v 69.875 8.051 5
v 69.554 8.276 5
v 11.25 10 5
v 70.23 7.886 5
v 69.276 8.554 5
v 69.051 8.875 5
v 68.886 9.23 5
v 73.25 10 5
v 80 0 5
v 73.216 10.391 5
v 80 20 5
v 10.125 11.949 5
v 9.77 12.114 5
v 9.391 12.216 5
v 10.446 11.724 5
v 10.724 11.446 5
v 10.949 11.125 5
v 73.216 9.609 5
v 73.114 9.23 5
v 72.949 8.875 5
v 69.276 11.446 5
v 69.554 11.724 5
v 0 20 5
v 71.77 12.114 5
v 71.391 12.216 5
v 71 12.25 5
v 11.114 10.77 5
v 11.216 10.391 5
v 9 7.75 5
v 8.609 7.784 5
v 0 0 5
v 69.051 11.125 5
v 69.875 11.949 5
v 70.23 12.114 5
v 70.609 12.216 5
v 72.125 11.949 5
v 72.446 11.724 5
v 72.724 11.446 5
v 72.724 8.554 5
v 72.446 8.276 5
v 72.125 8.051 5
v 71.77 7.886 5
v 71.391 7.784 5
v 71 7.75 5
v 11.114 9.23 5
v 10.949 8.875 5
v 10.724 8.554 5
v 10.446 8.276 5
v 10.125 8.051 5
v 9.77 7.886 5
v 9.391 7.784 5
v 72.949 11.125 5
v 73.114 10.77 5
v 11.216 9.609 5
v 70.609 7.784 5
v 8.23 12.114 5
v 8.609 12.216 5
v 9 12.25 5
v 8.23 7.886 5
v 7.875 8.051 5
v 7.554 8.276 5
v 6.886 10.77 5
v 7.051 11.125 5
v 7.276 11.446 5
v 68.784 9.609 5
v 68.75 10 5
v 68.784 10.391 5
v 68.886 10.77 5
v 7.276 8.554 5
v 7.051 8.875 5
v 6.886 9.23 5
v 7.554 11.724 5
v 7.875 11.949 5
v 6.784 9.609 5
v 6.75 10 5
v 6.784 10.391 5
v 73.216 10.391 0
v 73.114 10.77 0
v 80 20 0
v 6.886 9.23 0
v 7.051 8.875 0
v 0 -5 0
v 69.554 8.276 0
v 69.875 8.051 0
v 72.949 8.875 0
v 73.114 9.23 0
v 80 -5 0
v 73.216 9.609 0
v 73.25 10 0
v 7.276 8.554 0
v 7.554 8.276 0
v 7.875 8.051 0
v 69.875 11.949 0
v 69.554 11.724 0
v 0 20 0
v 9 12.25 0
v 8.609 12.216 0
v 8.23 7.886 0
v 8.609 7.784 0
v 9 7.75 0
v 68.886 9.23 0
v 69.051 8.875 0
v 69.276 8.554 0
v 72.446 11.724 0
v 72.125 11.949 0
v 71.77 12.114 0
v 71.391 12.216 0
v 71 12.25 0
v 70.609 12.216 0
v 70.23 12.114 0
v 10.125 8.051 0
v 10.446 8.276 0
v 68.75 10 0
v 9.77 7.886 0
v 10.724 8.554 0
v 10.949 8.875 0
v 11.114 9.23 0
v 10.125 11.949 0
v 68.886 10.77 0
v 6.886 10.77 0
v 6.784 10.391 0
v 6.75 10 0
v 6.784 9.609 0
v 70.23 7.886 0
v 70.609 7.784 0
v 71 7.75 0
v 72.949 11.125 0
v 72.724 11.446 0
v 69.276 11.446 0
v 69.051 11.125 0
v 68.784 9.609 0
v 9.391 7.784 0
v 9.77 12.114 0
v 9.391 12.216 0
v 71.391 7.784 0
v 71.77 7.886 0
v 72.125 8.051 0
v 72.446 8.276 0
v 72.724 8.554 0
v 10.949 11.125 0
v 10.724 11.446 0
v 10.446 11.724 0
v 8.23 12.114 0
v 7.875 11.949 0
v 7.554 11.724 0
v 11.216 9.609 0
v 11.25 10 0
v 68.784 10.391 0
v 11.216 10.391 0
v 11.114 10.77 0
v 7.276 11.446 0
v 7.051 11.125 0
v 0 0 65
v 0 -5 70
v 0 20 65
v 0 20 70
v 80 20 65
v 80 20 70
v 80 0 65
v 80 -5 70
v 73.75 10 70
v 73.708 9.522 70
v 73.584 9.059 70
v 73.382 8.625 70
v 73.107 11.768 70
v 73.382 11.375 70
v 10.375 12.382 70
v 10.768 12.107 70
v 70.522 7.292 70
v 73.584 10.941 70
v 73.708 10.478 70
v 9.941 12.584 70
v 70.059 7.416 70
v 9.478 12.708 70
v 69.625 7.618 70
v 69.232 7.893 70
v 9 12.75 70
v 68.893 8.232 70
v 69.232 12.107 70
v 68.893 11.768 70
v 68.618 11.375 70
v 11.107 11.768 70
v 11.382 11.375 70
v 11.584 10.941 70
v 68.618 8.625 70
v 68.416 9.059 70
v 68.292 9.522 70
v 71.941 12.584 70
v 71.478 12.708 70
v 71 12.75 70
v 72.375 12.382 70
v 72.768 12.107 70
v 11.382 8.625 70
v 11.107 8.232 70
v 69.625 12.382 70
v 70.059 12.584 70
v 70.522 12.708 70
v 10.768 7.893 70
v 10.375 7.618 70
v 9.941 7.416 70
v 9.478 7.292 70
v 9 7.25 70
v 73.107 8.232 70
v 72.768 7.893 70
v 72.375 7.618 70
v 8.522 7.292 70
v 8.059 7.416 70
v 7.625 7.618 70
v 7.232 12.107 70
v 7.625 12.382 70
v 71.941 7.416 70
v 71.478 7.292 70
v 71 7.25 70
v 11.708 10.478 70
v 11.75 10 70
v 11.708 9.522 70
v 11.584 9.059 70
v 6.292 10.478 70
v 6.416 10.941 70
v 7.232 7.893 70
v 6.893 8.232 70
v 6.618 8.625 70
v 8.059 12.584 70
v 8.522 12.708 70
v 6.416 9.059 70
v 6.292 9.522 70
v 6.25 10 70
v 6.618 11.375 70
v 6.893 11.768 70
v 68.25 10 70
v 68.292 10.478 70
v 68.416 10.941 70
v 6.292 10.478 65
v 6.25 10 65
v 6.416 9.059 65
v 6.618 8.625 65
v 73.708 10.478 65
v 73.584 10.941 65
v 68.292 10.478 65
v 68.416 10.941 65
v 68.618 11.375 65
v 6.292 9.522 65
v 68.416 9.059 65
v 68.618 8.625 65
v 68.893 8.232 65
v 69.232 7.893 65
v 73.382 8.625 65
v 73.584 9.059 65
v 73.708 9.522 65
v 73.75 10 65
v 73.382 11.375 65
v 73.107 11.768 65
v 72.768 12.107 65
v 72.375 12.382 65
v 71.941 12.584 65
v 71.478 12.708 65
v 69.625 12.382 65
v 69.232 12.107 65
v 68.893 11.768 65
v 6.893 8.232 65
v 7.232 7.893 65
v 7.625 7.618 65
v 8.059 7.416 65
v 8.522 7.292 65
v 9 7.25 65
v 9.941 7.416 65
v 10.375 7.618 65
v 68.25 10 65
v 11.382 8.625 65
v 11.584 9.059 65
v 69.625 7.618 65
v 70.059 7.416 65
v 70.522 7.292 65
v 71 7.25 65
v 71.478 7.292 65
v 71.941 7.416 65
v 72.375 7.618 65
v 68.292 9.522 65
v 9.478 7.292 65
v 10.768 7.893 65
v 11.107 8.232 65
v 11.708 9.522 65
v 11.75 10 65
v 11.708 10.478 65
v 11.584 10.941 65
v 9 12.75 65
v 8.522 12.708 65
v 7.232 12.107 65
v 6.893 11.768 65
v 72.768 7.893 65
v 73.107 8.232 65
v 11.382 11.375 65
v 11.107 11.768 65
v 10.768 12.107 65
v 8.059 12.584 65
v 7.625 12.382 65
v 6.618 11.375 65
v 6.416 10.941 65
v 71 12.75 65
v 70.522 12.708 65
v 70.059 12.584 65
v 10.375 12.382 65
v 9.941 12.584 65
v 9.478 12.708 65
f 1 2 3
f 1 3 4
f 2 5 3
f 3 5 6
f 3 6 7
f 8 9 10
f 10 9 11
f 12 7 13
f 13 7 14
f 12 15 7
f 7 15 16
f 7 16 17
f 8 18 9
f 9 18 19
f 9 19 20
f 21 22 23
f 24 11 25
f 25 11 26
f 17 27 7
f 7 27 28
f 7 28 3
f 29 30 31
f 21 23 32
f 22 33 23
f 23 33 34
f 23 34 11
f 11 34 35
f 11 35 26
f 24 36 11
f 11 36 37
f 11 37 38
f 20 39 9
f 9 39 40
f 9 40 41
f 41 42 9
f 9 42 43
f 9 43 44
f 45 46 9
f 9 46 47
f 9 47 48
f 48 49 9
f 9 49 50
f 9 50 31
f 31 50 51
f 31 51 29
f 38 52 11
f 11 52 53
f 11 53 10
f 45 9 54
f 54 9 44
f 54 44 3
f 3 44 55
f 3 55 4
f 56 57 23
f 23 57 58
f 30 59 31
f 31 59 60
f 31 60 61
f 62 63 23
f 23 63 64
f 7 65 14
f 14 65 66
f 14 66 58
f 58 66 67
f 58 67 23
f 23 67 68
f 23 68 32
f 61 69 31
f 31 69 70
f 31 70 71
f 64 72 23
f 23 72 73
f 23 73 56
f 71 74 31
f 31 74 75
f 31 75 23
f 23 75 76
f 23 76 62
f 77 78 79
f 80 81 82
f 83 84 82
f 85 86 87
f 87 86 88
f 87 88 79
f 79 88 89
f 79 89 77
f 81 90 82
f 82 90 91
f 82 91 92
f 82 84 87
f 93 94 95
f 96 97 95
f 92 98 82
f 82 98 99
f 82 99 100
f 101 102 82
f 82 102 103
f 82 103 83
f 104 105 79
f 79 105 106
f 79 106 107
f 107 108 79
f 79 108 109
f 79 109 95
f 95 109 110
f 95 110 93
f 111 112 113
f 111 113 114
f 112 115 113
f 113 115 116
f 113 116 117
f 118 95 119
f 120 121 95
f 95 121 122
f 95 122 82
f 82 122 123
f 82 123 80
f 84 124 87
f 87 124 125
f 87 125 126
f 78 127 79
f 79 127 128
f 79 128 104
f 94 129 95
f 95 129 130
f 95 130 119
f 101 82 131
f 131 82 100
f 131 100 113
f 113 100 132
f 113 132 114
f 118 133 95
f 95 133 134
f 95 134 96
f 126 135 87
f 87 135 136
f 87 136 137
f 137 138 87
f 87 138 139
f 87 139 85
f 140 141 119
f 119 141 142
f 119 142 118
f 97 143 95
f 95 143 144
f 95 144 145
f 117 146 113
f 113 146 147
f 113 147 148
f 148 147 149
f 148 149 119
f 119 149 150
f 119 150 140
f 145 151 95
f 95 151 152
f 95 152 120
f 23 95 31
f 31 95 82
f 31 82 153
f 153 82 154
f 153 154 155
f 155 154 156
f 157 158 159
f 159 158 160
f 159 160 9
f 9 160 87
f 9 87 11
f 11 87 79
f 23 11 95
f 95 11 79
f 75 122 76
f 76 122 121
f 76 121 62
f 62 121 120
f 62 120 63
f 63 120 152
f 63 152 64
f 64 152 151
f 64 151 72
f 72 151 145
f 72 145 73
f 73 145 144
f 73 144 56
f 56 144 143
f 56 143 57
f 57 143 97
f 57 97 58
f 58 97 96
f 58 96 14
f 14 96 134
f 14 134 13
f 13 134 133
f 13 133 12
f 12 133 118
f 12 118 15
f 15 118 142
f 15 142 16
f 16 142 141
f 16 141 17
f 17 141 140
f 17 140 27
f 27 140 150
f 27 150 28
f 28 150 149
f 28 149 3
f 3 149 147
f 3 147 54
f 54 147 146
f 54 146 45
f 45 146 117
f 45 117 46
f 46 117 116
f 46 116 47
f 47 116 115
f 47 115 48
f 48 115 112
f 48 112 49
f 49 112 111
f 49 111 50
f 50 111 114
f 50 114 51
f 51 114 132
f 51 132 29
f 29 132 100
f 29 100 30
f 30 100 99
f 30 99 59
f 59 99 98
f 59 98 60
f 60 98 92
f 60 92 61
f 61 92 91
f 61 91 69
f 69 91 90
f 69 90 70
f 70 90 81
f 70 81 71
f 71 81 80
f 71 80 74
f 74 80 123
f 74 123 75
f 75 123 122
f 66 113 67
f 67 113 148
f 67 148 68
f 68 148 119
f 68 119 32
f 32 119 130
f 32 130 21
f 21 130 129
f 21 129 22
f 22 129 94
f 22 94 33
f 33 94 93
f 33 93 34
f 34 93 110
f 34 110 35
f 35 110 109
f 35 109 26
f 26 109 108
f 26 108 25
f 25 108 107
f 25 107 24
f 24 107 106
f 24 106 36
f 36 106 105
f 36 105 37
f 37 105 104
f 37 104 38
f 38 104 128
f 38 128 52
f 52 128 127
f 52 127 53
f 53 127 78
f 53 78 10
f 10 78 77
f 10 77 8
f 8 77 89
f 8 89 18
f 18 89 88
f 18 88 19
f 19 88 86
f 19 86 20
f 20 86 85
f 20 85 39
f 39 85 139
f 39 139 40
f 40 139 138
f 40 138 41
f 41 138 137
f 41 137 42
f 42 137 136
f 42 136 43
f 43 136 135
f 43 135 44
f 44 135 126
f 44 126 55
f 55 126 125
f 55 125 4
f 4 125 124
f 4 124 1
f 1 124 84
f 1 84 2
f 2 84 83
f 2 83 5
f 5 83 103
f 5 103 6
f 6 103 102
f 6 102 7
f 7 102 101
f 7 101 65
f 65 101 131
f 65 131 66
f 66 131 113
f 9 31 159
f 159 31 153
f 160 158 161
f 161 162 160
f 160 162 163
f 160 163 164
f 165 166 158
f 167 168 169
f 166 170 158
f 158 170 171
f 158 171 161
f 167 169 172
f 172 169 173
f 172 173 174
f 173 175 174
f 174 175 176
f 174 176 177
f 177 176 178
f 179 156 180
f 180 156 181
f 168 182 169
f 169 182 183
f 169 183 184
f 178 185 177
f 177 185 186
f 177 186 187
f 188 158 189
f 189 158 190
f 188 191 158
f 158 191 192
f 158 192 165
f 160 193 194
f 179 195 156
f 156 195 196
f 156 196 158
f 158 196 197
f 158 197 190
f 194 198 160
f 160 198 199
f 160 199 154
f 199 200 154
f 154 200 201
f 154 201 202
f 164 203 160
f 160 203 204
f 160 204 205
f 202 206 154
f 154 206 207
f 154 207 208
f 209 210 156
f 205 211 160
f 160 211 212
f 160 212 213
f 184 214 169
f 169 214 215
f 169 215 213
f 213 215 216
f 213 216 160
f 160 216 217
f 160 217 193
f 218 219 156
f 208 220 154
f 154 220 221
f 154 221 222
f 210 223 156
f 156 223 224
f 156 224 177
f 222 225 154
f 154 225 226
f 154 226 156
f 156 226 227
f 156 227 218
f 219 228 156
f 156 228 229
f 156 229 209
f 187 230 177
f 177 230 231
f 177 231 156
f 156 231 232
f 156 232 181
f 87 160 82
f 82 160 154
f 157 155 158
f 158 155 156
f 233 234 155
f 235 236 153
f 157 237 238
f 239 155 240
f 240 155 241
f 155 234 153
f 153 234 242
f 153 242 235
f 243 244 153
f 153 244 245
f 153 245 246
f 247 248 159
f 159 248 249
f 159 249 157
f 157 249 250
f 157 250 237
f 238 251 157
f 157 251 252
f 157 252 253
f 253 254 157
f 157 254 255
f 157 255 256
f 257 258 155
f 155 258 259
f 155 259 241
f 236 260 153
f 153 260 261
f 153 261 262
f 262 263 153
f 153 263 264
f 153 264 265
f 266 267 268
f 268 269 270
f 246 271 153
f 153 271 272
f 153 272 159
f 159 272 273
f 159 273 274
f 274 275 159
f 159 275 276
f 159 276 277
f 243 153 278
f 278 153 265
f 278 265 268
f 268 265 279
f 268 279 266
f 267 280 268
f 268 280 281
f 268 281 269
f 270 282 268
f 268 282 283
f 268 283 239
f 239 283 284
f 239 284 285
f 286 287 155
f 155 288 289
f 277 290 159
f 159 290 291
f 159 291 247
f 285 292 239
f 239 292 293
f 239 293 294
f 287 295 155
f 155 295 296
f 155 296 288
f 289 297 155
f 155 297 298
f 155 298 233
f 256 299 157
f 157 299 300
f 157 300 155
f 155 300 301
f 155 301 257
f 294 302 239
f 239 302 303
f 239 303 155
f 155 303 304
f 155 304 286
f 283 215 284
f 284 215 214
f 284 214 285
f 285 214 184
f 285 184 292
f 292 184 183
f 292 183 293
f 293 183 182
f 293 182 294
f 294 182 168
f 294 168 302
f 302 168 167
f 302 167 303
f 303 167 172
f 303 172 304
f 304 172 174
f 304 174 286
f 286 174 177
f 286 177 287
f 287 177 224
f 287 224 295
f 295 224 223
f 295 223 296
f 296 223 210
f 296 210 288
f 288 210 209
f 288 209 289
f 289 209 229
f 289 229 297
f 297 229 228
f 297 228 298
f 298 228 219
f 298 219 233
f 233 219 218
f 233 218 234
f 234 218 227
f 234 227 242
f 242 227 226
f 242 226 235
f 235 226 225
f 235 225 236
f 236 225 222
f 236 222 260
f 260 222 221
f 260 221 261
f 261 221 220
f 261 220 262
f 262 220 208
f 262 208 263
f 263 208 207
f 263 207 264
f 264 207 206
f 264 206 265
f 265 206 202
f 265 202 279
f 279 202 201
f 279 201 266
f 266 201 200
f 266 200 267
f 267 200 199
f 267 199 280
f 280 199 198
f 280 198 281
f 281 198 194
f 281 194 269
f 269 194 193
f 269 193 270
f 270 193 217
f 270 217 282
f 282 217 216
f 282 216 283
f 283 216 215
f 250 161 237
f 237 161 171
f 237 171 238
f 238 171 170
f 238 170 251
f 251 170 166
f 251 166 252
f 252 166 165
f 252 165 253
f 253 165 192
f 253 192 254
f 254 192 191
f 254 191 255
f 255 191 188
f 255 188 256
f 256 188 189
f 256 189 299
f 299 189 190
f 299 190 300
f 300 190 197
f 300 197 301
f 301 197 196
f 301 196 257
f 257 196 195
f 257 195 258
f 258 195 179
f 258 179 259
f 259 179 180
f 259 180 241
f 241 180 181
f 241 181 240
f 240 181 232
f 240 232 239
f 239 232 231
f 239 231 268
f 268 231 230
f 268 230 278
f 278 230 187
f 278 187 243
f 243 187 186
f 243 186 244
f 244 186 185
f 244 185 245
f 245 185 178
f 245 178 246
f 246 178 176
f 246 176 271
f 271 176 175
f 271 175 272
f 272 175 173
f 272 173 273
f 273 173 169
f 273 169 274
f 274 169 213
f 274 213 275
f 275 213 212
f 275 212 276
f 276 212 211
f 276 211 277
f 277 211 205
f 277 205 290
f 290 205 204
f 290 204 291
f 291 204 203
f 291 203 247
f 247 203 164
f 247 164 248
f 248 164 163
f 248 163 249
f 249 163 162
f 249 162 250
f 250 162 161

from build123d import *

# Parameters (mm, degrees)
SKETCH1_W           = 80
SKETCH1_H           = 20
SKETCH1_R           = 2.25
BOSS_EXTRUDE1_DEPTH = 5
SKETCH2_W           = 80
SKETCH2_H           = 70
BOSS_EXTRUDE2_DEPTH = 5
SKETCH3_W           = 80
SKETCH3_H           = 20
SKETCH3_R           = 2.75
BOSS_EXTRUDE3_DEPTH = 5


with BuildPart() as part:
    # Sketch1 → Boss-Extrude1 (new body)
    with BuildSketch(Plane.XY):
        with Locations((40, 10)):
            Rectangle(SKETCH1_W, SKETCH1_H)
        with Locations((9, 10)):
            Circle(SKETCH1_R, mode=Mode.SUBTRACT)
        with Locations(Location((71, 10, 0), (0, 0, 180))):
            Circle(SKETCH1_R, mode=Mode.SUBTRACT)
    extrude(amount=BOSS_EXTRUDE1_DEPTH)

    # Sketch2 → Boss-Extrude2 (add)
    with BuildSketch(Plane.XZ):
        with Locations((40, 35)):
            Rectangle(SKETCH2_W, SKETCH2_H)
    extrude(amount=BOSS_EXTRUDE2_DEPTH)

    # Sketch3 → Boss-Extrude3 (add)
    with BuildSketch(Plane.XY.offset(70)):
        with Locations((40, 10)):
            Rectangle(SKETCH3_W, SKETCH3_H)
        with Locations((9, 10)):
            Circle(SKETCH3_R, mode=Mode.SUBTRACT)
        with Locations(Location((71, 10, 0), (0, 0, 180))):
            Circle(SKETCH3_R, mode=Mode.SUBTRACT)
    extrude(amount=-BOSS_EXTRUDE3_DEPTH)


solid = part.part
